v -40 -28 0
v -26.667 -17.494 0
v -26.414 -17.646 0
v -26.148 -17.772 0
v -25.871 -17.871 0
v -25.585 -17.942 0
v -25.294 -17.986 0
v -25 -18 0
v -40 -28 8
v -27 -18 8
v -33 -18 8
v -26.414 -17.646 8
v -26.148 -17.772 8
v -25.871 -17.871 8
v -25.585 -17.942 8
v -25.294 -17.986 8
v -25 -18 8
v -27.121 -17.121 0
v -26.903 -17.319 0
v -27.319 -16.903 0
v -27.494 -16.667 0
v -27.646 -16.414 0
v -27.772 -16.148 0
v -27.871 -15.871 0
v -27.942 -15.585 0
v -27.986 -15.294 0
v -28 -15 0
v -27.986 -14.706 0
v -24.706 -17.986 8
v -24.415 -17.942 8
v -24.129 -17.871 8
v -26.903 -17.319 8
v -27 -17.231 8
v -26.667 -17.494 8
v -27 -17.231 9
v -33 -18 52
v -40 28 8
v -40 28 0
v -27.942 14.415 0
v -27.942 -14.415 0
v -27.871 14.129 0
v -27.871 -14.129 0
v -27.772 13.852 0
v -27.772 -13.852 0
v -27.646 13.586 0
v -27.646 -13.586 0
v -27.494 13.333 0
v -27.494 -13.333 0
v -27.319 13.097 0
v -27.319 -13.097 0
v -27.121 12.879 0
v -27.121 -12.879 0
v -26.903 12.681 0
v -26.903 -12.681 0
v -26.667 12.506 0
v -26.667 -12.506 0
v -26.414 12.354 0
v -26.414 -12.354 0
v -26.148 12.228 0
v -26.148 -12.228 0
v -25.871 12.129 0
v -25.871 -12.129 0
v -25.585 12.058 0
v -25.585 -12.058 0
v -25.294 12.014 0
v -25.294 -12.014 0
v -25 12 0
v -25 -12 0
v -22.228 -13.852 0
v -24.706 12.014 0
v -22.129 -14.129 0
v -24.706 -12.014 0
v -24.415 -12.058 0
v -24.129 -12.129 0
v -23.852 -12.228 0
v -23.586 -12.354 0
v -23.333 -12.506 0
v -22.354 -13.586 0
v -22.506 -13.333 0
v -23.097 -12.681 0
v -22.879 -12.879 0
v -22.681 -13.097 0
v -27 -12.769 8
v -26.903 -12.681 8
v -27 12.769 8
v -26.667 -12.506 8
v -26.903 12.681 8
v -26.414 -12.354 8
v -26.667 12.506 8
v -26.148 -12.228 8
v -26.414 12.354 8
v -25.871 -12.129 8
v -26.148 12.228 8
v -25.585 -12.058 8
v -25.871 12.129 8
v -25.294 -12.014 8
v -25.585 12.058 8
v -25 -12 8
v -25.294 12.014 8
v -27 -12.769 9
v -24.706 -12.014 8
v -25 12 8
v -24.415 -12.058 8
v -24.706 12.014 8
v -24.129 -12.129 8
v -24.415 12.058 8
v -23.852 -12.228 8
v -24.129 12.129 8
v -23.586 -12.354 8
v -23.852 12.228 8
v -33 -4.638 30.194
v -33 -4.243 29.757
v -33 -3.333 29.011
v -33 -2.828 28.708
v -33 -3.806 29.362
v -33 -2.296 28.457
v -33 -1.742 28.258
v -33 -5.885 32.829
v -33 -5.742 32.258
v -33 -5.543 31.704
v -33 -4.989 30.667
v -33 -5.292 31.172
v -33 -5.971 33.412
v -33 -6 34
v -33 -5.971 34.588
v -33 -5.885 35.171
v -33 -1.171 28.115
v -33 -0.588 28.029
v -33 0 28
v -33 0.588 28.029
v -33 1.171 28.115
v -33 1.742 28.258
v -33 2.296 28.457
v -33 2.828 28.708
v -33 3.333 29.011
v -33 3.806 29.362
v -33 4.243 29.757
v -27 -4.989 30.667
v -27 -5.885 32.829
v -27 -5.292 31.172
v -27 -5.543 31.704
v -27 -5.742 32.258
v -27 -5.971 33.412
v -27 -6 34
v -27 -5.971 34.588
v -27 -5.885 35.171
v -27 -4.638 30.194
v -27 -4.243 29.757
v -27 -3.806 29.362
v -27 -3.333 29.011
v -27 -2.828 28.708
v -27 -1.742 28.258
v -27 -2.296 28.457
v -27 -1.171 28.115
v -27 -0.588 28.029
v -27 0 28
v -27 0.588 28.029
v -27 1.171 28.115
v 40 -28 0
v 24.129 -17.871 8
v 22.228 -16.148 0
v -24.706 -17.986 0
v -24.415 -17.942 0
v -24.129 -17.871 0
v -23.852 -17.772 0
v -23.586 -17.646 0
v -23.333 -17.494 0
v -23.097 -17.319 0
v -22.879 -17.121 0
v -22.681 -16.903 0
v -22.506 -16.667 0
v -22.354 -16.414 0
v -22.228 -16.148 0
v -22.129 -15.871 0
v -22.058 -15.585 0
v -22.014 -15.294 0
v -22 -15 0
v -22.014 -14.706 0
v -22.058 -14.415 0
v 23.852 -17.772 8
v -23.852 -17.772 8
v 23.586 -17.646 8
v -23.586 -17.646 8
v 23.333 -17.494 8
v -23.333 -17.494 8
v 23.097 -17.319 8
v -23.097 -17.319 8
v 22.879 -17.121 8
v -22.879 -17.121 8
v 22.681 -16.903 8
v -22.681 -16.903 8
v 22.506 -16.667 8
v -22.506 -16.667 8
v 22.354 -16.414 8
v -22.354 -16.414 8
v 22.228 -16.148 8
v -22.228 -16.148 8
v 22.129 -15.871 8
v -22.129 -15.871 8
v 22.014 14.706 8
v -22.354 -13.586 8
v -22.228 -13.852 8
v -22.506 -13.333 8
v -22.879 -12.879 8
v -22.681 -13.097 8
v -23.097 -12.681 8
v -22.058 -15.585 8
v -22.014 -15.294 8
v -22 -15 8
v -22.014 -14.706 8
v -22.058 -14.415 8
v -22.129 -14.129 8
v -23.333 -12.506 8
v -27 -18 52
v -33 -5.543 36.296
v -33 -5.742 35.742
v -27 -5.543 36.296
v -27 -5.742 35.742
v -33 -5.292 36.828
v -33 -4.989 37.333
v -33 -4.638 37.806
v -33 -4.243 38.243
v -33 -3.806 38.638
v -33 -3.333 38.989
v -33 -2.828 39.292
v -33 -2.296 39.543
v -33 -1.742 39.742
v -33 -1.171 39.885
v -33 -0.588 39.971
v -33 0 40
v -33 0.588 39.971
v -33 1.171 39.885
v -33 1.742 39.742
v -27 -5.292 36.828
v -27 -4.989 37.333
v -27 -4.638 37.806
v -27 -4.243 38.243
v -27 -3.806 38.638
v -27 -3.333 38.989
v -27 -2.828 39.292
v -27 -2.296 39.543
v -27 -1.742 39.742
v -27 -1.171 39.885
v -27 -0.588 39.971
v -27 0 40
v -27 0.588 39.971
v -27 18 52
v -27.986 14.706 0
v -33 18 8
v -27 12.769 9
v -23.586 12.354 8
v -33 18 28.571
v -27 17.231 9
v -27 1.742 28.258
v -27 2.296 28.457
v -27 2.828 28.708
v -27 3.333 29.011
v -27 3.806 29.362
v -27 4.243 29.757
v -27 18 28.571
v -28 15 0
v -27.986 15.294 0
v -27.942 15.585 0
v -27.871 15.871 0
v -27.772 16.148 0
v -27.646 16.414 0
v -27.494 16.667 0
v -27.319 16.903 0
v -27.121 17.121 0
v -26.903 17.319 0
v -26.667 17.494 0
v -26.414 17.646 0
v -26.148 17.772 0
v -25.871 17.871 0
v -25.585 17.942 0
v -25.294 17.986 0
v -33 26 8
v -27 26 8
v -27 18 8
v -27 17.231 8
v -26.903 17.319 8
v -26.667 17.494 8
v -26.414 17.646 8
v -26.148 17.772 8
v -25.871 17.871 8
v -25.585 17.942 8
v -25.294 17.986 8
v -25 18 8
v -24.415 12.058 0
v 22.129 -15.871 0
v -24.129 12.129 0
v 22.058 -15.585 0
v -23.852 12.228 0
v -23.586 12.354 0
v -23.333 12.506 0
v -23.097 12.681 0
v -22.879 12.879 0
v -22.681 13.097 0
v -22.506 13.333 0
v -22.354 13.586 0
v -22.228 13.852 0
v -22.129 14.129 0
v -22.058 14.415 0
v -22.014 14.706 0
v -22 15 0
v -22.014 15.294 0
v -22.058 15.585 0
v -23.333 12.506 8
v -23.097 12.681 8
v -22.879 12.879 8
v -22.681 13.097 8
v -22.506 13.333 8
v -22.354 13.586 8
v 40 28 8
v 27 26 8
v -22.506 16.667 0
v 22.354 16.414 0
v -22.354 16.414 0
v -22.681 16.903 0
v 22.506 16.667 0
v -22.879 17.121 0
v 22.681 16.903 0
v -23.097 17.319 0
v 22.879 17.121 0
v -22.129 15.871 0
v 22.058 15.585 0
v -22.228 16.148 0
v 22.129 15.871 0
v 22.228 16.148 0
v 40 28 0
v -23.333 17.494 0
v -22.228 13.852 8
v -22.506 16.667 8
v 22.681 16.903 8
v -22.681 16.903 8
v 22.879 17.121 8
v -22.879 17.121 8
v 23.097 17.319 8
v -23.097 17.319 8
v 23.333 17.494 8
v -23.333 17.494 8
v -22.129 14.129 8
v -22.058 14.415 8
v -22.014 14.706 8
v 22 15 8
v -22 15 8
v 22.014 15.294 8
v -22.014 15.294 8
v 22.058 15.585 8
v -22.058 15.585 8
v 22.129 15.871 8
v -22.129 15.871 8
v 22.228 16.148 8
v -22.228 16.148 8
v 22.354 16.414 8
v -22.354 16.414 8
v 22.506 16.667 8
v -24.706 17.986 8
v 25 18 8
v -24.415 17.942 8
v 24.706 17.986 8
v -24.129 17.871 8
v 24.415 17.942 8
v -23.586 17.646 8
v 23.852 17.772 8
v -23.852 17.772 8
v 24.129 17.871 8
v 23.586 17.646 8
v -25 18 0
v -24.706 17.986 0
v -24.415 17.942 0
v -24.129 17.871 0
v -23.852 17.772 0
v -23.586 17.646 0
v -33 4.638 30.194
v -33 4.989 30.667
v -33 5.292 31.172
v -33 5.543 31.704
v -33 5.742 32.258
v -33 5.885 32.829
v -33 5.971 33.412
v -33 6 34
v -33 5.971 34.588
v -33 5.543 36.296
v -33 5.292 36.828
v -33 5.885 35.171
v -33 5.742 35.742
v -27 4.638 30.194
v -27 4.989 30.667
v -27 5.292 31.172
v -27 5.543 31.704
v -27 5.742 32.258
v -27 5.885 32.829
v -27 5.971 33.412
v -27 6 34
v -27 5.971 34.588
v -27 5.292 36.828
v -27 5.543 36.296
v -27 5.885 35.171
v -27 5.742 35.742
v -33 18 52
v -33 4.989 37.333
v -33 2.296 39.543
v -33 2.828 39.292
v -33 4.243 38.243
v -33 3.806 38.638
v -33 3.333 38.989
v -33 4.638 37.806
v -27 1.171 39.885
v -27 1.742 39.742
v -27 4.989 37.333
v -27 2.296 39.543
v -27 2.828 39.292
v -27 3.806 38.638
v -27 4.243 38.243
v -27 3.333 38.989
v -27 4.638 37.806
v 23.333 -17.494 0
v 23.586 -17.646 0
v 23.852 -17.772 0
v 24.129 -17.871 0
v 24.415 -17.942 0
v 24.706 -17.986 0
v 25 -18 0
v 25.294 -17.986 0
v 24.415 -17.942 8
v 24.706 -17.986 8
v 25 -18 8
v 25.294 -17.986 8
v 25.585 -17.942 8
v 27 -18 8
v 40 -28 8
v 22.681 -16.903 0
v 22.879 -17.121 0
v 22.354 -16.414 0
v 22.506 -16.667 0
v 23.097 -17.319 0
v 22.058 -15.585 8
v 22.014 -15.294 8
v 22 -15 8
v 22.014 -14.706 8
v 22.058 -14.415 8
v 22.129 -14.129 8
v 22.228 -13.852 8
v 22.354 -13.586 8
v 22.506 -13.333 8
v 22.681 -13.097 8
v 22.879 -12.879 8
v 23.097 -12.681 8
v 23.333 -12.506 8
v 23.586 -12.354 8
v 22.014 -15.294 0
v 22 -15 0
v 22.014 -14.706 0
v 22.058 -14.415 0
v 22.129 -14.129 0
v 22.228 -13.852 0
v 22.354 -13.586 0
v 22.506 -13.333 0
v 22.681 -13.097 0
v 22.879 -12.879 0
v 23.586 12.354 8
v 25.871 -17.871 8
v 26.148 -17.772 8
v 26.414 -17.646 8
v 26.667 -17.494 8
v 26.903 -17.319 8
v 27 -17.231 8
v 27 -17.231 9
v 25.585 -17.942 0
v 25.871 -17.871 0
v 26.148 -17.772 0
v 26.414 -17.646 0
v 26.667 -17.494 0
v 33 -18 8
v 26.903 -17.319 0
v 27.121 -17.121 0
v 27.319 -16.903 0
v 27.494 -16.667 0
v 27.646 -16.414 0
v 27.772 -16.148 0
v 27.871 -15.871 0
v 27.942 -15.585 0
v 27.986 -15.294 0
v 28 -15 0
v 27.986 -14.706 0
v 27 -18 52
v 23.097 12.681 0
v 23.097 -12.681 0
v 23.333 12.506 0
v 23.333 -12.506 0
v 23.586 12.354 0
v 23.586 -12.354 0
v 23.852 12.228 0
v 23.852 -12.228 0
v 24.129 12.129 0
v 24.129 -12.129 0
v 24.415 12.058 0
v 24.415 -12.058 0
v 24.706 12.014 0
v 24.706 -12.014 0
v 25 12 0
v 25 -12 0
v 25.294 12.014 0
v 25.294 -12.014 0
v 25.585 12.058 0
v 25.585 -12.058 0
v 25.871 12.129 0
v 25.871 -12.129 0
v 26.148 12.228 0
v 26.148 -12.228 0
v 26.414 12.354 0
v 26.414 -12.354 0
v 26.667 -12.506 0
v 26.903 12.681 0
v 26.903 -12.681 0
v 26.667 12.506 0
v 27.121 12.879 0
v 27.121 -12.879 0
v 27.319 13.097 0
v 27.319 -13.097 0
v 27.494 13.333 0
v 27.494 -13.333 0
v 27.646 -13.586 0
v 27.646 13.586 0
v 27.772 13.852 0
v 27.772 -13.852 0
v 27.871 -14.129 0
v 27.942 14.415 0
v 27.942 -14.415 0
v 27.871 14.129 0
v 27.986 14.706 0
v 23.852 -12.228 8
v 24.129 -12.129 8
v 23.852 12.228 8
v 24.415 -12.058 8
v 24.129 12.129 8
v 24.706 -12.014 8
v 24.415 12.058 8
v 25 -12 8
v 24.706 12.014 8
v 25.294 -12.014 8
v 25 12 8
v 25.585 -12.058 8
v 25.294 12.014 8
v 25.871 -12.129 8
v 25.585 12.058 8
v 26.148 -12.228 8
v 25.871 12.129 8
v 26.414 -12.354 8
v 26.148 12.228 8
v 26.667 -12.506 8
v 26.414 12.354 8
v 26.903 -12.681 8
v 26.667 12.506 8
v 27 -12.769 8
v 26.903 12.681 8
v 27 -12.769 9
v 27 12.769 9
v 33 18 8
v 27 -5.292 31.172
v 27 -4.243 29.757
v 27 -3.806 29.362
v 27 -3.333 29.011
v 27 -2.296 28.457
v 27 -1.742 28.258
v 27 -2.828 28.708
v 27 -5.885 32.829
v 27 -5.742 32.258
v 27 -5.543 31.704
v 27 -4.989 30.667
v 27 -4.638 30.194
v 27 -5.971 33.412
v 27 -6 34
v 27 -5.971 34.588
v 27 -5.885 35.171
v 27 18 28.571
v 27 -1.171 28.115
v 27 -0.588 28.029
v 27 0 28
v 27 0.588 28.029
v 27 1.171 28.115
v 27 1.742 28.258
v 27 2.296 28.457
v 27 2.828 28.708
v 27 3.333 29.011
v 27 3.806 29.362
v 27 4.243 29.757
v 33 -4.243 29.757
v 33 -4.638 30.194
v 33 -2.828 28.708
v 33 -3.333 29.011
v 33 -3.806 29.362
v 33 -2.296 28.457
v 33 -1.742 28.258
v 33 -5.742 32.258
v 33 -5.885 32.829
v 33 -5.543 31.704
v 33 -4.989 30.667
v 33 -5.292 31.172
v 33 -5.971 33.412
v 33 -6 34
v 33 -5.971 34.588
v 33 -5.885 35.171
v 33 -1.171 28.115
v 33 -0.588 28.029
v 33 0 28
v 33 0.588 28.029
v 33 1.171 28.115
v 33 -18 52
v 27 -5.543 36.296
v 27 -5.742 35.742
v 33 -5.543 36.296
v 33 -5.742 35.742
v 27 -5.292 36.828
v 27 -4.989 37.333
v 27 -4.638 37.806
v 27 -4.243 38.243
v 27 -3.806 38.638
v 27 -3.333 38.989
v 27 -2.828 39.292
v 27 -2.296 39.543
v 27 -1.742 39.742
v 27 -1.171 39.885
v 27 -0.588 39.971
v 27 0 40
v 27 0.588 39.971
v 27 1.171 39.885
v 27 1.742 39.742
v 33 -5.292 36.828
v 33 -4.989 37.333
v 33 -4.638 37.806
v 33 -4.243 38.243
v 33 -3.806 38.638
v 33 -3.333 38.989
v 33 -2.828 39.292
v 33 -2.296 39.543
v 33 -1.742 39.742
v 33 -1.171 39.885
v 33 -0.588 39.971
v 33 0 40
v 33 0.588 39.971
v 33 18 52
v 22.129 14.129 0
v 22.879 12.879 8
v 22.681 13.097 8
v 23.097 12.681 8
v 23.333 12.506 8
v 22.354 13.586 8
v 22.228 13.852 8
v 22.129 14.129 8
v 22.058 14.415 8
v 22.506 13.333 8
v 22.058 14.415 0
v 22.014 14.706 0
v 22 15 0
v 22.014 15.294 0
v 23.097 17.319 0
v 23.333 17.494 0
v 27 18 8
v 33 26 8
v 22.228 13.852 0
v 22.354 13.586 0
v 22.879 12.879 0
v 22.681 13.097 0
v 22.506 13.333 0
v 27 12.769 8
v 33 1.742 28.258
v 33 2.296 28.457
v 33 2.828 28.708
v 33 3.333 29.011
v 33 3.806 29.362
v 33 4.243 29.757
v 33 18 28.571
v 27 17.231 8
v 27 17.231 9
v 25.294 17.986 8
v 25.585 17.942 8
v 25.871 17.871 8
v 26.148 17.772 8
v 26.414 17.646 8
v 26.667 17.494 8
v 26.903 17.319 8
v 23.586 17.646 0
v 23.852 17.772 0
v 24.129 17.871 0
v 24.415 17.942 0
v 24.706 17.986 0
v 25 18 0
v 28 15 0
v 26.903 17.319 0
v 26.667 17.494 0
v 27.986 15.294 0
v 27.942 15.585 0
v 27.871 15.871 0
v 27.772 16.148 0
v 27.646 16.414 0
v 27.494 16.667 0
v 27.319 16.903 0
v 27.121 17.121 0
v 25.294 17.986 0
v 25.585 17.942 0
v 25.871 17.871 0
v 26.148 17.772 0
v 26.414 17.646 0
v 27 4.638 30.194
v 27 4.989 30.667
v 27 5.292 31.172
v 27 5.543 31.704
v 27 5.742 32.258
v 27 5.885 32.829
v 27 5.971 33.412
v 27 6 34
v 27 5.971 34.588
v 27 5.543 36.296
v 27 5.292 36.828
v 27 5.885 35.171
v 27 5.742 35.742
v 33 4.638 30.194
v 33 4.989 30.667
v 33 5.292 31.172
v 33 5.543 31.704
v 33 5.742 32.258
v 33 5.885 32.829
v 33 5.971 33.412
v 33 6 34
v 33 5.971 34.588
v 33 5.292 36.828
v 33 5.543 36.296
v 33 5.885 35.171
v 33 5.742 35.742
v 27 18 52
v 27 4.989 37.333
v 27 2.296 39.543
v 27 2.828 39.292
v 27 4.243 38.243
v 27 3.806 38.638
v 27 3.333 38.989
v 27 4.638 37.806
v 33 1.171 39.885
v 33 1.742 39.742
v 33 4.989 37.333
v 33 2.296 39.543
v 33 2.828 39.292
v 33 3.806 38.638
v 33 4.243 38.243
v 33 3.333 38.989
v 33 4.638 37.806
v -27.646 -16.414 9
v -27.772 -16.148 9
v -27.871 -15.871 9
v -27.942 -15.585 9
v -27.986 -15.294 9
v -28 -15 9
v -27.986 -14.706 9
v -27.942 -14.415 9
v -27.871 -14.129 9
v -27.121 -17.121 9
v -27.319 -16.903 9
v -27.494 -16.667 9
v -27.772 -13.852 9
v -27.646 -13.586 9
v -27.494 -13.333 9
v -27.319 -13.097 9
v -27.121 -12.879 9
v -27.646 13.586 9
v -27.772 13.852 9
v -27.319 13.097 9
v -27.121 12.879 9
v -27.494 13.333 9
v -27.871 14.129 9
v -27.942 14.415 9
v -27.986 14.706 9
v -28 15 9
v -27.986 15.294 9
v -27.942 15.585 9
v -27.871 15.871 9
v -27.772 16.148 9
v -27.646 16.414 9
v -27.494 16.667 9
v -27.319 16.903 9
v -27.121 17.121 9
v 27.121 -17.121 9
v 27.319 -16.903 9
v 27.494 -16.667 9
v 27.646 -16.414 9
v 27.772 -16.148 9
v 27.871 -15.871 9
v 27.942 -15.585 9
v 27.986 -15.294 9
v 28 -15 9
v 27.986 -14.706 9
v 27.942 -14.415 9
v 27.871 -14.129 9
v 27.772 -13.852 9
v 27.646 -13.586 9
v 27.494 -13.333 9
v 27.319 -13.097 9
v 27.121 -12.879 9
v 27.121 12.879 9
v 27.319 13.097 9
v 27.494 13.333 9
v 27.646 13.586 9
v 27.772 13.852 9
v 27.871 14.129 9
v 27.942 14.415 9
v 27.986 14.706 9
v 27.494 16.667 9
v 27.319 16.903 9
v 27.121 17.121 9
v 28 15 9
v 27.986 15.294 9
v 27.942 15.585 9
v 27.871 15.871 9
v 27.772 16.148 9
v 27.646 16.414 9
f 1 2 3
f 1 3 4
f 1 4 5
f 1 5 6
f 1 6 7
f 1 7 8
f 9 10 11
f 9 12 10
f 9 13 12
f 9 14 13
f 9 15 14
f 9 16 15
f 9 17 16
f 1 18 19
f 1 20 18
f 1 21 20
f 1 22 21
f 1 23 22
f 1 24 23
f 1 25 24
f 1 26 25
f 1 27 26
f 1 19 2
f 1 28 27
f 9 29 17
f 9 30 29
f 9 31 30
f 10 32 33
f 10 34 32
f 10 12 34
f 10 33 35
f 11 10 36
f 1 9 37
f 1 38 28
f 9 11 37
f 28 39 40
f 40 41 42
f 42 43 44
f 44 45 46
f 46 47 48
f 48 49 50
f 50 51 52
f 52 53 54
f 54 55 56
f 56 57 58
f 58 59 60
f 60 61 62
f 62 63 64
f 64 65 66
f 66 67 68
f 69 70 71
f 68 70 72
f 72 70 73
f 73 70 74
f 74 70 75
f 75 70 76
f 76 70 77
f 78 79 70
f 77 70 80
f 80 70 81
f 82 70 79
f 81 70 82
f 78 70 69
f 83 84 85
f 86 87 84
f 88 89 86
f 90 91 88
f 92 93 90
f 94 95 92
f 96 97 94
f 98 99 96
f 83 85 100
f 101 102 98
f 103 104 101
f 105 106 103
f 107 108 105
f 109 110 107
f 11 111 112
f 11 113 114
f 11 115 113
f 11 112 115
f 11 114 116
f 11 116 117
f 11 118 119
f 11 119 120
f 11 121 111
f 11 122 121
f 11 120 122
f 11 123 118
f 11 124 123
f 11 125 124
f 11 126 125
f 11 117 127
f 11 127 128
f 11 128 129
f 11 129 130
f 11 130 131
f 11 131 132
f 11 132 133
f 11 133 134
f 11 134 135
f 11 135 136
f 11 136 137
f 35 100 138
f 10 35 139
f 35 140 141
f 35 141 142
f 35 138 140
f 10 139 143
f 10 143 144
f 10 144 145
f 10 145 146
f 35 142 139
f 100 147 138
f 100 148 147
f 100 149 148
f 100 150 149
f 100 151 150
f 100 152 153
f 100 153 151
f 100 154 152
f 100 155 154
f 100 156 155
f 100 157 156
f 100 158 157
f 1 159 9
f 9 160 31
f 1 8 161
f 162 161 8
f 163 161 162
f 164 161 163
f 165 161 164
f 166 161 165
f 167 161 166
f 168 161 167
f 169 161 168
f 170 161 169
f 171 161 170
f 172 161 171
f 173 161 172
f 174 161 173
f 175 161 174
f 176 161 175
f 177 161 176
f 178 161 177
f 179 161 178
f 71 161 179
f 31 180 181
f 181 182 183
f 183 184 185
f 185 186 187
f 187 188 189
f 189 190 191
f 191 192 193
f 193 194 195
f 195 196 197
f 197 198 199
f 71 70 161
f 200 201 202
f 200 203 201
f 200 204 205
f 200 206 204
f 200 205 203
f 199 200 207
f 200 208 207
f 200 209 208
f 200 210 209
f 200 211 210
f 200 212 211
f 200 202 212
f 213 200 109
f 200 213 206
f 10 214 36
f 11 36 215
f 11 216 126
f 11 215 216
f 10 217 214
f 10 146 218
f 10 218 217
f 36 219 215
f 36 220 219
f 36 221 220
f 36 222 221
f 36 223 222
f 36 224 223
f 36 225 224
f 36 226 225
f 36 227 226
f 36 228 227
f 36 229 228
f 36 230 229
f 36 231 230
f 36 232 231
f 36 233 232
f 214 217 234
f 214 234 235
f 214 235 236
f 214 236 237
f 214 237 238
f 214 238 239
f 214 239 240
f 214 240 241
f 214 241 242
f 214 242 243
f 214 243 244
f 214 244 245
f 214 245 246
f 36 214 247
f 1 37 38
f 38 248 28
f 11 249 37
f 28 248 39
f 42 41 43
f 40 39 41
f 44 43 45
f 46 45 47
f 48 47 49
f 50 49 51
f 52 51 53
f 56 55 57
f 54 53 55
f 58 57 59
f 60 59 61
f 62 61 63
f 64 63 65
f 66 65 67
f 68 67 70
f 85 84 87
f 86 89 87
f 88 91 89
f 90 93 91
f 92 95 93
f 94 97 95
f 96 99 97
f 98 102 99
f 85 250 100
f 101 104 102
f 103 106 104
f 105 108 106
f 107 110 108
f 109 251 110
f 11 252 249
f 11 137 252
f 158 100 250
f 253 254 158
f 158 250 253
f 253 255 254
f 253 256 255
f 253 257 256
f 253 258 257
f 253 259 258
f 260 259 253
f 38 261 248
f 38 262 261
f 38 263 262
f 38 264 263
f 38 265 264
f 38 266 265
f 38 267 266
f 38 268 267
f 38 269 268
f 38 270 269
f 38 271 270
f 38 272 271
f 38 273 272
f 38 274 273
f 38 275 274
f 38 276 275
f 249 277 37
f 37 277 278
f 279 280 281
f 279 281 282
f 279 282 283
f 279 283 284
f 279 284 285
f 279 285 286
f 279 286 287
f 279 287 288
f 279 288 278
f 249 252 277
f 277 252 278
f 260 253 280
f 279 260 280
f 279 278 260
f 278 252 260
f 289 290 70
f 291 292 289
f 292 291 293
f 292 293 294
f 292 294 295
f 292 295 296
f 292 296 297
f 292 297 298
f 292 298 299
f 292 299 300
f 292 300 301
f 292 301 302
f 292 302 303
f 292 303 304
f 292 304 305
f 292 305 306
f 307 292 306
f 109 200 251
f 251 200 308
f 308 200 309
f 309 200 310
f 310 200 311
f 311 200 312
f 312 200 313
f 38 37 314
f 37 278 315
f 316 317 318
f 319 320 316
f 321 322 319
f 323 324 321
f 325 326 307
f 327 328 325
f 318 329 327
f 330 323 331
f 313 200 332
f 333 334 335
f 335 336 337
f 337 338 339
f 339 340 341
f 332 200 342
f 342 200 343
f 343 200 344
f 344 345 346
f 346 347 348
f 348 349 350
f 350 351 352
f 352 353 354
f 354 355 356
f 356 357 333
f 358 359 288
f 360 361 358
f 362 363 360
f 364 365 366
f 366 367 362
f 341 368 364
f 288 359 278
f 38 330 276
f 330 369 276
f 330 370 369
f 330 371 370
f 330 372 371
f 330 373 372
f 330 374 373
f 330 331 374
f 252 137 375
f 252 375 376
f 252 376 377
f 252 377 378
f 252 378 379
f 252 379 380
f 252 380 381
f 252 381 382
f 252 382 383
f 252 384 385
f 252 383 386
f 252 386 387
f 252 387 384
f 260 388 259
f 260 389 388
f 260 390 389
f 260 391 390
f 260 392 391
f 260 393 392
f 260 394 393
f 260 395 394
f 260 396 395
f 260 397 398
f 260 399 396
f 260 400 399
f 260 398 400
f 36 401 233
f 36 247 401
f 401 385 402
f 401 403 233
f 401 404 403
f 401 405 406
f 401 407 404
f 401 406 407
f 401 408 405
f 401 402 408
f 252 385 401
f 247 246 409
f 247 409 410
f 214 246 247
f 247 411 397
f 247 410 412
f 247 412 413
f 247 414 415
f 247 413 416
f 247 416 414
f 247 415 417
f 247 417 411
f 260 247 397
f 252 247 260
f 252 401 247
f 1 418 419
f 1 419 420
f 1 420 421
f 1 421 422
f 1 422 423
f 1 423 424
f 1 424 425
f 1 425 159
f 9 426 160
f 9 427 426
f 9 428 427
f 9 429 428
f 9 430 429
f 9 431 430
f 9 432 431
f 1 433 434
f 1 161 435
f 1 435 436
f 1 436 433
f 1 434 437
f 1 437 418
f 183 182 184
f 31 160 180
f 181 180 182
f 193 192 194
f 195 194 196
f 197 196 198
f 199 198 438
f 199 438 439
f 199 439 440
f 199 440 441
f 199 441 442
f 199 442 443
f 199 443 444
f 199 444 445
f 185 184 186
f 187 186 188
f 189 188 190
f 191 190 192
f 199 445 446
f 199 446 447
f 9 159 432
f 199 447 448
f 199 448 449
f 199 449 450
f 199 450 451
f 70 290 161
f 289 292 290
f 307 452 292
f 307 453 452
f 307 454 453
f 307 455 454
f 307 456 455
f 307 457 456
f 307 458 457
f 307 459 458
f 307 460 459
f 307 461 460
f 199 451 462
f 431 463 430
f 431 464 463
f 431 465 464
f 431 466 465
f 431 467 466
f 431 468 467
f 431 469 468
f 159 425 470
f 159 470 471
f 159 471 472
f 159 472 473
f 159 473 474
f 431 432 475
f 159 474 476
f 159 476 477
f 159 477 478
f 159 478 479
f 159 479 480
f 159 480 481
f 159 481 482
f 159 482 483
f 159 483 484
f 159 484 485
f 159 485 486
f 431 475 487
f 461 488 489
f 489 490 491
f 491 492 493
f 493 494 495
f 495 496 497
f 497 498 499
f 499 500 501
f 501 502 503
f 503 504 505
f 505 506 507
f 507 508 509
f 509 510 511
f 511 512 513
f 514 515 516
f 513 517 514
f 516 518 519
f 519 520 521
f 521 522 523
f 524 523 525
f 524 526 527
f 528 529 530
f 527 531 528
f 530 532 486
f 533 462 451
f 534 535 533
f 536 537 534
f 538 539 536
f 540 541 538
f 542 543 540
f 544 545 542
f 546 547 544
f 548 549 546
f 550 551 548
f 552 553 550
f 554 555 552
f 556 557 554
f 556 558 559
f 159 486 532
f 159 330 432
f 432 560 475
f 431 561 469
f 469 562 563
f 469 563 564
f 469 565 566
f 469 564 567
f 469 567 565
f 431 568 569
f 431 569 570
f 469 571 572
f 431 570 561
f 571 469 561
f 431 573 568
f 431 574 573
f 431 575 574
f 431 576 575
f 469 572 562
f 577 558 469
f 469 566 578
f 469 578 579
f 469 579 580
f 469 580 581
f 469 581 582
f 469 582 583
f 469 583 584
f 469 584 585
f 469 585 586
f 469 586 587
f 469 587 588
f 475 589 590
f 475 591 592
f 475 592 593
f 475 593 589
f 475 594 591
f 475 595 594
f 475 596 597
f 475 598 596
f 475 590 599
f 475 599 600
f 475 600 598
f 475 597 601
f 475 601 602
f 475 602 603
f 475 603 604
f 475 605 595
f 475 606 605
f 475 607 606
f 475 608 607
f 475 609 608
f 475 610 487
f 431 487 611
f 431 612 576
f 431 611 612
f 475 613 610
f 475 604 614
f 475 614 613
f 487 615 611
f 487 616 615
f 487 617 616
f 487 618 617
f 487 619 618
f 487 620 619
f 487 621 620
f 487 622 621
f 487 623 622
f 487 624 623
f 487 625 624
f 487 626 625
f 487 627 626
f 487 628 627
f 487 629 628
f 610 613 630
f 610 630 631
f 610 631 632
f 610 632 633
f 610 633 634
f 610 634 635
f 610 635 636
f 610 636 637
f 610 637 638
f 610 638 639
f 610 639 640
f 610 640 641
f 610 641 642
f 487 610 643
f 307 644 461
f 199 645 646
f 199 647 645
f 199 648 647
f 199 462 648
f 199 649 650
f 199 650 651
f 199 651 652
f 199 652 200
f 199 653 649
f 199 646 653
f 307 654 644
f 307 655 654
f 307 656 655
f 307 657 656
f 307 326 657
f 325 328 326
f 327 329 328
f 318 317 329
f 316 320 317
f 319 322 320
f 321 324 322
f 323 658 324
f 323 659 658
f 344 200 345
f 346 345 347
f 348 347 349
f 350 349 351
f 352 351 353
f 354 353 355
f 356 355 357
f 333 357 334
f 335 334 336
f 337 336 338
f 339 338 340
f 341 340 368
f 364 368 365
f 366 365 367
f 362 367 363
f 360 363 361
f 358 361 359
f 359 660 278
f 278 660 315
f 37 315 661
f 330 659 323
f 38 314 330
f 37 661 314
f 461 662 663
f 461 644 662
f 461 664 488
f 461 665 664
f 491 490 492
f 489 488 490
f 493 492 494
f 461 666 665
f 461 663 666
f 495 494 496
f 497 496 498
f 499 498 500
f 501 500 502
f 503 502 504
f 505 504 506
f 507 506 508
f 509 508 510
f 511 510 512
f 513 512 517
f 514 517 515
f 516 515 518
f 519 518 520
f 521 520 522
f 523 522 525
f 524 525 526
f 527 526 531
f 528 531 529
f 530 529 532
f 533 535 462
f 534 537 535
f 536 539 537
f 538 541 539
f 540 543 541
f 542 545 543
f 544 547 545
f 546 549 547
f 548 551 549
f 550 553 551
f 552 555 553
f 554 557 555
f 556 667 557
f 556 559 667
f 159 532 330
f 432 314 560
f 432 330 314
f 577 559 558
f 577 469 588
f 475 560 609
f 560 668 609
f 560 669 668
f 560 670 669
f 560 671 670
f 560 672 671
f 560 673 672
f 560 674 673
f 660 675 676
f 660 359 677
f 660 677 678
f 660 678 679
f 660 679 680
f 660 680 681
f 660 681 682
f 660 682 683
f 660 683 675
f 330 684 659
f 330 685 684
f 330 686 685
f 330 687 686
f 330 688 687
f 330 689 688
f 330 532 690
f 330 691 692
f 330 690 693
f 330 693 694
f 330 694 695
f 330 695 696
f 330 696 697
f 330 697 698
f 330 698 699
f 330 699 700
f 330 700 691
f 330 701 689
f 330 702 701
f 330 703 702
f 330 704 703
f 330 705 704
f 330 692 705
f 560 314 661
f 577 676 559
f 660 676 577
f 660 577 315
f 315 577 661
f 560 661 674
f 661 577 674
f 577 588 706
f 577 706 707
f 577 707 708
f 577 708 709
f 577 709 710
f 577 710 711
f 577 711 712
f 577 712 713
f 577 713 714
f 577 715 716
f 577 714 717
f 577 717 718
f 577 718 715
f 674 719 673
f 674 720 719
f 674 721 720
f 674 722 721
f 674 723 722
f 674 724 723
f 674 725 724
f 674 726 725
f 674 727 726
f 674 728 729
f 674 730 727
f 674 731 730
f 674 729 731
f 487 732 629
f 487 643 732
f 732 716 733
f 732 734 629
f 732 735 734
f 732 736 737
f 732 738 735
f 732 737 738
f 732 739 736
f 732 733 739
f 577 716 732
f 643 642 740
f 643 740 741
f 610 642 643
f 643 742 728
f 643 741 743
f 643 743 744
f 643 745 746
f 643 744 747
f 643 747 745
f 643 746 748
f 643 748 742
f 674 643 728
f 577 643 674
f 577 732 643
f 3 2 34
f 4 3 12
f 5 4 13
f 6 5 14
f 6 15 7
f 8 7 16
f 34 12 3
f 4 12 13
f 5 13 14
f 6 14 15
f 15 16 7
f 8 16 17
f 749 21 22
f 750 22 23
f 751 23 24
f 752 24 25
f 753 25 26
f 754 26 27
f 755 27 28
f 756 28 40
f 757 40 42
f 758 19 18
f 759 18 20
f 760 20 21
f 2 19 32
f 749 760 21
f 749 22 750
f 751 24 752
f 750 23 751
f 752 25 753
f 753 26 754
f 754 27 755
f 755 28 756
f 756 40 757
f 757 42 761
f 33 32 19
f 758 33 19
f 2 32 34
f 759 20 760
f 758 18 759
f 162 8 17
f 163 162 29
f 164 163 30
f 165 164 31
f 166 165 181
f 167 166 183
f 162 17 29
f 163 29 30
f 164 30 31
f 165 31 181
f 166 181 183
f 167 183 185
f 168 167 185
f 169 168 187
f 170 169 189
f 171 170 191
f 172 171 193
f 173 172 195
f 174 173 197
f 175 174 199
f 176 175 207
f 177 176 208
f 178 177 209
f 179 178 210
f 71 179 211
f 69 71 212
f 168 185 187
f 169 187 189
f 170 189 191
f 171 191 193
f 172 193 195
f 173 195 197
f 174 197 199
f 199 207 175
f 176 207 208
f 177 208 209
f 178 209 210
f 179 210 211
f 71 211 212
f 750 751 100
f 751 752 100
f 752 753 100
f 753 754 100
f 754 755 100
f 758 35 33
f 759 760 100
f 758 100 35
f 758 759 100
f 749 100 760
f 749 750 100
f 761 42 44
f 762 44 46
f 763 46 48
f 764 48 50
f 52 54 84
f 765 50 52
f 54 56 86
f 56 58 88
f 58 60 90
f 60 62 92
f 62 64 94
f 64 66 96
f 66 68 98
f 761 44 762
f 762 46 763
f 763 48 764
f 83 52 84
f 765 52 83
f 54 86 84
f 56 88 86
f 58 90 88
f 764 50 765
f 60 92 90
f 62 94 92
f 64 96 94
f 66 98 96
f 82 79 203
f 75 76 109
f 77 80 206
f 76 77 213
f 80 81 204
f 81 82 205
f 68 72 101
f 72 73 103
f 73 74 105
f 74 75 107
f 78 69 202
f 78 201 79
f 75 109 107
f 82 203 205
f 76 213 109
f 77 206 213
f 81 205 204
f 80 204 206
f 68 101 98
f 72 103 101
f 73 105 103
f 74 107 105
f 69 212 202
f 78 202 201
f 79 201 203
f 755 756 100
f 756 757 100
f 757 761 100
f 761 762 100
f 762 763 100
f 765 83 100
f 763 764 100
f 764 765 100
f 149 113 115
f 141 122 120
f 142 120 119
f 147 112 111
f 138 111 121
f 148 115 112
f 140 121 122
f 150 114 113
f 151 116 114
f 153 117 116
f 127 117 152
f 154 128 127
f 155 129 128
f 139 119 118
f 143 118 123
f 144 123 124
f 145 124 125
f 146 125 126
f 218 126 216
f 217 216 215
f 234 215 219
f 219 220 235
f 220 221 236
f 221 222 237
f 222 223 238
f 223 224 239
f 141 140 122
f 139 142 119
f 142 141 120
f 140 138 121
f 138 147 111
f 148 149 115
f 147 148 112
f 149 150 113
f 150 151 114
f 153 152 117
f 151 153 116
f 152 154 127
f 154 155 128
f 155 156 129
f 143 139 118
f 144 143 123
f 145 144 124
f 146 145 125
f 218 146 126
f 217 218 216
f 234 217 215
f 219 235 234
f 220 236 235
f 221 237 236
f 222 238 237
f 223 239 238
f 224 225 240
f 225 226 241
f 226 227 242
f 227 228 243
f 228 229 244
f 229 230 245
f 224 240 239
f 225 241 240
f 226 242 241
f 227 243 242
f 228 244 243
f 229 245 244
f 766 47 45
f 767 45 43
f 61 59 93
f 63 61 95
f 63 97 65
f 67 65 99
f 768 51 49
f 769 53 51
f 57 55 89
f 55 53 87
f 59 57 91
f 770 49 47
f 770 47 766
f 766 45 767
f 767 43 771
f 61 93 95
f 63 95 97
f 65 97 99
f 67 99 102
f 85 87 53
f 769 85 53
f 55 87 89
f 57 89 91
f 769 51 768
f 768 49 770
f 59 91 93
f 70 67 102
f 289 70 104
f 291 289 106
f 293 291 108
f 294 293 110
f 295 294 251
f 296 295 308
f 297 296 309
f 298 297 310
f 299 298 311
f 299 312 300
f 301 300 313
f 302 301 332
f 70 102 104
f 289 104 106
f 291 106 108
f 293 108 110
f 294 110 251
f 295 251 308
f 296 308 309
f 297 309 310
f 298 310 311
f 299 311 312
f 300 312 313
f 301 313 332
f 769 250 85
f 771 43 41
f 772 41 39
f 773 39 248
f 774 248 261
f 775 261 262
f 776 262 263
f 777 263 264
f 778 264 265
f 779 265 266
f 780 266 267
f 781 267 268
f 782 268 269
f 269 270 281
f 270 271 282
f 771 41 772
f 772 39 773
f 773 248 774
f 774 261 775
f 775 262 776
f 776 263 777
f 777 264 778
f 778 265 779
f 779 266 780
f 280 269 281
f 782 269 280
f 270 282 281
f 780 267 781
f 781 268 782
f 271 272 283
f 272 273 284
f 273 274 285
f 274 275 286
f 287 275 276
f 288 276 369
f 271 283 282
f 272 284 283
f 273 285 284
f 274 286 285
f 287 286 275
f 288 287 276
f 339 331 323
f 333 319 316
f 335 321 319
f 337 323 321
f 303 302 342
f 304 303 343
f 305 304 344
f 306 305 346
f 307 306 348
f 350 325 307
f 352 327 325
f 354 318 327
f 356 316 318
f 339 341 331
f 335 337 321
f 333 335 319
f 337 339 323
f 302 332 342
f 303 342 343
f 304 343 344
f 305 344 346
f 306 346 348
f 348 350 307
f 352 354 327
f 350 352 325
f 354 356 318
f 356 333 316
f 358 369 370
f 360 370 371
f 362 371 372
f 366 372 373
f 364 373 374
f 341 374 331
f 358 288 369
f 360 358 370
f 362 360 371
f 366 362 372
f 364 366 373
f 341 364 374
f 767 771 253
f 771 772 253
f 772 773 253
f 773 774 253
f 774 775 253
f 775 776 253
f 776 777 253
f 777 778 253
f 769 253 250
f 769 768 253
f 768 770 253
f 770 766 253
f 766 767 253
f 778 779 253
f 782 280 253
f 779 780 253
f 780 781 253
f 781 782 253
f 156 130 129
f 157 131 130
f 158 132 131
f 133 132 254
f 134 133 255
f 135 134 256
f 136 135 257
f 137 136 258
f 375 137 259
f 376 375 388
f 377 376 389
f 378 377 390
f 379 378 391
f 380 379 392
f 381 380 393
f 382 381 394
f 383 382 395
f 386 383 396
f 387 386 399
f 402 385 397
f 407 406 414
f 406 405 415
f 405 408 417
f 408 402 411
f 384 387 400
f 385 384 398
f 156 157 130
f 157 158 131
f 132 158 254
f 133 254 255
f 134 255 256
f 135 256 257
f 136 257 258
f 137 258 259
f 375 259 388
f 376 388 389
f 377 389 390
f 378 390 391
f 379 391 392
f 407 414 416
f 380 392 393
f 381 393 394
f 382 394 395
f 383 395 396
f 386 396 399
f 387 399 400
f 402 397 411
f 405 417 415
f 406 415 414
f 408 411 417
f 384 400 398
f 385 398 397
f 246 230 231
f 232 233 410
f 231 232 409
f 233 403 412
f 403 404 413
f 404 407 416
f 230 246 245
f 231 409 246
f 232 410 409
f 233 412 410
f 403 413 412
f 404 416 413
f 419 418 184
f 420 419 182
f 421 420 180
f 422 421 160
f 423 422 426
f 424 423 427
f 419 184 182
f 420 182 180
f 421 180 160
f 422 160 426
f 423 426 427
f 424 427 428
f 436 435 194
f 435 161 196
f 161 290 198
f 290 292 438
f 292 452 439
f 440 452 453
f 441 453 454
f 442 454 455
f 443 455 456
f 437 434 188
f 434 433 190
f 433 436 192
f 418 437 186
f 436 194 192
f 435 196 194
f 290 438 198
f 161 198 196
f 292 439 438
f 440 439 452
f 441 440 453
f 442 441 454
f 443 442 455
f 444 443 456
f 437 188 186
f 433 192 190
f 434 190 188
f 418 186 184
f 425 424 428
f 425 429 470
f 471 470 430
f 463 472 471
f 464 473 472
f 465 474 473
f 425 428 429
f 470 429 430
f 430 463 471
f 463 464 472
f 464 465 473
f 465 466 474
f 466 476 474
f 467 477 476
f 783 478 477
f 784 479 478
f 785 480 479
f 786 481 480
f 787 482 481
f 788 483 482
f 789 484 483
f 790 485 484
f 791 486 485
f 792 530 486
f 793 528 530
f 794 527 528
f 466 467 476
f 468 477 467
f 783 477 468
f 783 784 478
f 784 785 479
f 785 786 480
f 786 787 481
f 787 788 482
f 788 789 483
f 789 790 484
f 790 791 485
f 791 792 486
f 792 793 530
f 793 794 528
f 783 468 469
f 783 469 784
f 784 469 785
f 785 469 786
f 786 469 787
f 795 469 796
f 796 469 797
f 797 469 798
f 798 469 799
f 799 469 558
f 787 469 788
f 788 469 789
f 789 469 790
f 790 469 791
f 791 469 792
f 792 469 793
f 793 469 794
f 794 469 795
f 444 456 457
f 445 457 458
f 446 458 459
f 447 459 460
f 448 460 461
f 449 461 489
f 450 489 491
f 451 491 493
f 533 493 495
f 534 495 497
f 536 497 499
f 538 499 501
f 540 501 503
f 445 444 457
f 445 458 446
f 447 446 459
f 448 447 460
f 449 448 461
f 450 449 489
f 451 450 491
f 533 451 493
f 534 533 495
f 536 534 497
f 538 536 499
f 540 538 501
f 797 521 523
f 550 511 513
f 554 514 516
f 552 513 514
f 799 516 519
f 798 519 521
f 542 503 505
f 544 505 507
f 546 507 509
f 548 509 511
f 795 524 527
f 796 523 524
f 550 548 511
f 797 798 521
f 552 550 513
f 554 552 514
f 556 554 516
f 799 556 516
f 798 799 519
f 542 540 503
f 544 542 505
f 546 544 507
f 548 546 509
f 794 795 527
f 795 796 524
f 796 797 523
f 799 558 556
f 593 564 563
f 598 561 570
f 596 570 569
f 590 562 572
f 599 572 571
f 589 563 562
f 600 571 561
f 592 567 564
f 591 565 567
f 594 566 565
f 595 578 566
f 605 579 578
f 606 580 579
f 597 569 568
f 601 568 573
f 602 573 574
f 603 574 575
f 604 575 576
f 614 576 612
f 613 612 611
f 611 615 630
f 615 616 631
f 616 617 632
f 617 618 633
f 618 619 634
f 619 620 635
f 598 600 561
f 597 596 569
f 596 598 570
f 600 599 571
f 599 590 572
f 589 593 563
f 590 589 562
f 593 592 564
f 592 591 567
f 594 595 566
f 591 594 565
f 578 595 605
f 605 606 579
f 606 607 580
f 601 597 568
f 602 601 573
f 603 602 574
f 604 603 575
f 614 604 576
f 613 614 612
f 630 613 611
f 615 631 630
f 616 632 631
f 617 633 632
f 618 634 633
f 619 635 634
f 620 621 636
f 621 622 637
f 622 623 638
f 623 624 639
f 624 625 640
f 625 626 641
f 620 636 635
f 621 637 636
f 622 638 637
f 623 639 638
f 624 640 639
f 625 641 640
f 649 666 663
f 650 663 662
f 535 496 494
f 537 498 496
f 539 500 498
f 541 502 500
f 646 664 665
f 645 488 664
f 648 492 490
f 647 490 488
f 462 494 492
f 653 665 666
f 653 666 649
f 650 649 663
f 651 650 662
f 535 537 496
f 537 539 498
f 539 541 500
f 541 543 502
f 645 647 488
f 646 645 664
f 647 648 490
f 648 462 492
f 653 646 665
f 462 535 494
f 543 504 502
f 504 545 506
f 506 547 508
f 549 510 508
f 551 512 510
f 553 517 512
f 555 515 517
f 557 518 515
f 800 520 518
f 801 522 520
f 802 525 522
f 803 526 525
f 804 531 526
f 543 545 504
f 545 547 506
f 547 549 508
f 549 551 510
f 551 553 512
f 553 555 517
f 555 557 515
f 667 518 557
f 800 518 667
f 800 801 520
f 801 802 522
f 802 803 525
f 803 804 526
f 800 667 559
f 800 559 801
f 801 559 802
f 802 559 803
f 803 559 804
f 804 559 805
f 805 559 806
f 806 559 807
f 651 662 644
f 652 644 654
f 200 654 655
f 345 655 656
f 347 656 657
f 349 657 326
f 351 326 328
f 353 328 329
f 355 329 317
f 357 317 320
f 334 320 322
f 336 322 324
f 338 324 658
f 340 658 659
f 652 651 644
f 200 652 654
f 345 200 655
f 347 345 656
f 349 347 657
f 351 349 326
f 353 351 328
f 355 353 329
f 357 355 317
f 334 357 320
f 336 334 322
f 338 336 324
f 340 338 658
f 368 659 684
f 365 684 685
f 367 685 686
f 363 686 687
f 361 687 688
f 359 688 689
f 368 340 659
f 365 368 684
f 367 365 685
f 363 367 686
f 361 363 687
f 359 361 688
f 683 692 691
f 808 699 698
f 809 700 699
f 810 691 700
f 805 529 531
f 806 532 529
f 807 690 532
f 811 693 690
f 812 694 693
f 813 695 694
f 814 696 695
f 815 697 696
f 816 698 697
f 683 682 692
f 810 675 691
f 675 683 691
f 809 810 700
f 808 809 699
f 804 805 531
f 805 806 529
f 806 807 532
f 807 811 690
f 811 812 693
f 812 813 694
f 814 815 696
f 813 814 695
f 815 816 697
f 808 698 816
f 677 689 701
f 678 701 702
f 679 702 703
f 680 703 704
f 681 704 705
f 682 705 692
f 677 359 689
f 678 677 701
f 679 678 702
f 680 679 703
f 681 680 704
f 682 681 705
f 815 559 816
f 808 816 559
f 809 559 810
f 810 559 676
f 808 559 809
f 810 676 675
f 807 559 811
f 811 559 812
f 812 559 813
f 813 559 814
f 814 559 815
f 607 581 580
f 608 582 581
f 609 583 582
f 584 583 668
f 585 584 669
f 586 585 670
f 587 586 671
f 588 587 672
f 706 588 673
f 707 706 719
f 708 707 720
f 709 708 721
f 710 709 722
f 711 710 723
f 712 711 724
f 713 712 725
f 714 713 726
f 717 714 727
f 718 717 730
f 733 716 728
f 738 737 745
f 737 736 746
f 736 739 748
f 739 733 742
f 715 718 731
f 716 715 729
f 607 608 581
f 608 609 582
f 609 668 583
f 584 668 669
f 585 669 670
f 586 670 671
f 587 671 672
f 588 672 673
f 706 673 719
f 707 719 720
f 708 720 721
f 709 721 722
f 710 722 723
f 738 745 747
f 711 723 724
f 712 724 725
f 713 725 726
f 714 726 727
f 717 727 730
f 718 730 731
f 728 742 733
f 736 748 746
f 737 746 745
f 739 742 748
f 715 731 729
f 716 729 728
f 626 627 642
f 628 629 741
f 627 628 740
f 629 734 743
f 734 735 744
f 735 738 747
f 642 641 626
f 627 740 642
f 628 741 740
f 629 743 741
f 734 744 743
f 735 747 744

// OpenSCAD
$fn = 64;

module yz_prism(x_min, thickness, profile) {
    multmatrix([
        [0, 0, 1, x_min],
        [1, 0, 0, 0],
        [0, 1, 0, 0],
        [0, 0, 0, 1]
    ])
        linear_extrude(height = thickness)
            polygon(points = profile);
}

difference() {
    union() {
        translate([-40, -28, 0]) cube([80, 56, 8]);

        translate([-33, -18, 8]) cube([6, 36, 44]);
        translate([27, -18, 8]) cube([6, 36, 44]);

        yz_prism(-33, 6, [[12, 8], [26, 8], [12, 44]]);
        yz_prism(27, 6, [[12, 8], [26, 8], [12, 44]]);
    }

    translate([0, 0, 34])
        rotate([0, 90, 0])
            cylinder(h = 68, d = 12, center = true);

    for (x = [-25, 25], y = [-15, 15])
        translate([x, y, -1]) cylinder(h = 10, d = 6);
}
